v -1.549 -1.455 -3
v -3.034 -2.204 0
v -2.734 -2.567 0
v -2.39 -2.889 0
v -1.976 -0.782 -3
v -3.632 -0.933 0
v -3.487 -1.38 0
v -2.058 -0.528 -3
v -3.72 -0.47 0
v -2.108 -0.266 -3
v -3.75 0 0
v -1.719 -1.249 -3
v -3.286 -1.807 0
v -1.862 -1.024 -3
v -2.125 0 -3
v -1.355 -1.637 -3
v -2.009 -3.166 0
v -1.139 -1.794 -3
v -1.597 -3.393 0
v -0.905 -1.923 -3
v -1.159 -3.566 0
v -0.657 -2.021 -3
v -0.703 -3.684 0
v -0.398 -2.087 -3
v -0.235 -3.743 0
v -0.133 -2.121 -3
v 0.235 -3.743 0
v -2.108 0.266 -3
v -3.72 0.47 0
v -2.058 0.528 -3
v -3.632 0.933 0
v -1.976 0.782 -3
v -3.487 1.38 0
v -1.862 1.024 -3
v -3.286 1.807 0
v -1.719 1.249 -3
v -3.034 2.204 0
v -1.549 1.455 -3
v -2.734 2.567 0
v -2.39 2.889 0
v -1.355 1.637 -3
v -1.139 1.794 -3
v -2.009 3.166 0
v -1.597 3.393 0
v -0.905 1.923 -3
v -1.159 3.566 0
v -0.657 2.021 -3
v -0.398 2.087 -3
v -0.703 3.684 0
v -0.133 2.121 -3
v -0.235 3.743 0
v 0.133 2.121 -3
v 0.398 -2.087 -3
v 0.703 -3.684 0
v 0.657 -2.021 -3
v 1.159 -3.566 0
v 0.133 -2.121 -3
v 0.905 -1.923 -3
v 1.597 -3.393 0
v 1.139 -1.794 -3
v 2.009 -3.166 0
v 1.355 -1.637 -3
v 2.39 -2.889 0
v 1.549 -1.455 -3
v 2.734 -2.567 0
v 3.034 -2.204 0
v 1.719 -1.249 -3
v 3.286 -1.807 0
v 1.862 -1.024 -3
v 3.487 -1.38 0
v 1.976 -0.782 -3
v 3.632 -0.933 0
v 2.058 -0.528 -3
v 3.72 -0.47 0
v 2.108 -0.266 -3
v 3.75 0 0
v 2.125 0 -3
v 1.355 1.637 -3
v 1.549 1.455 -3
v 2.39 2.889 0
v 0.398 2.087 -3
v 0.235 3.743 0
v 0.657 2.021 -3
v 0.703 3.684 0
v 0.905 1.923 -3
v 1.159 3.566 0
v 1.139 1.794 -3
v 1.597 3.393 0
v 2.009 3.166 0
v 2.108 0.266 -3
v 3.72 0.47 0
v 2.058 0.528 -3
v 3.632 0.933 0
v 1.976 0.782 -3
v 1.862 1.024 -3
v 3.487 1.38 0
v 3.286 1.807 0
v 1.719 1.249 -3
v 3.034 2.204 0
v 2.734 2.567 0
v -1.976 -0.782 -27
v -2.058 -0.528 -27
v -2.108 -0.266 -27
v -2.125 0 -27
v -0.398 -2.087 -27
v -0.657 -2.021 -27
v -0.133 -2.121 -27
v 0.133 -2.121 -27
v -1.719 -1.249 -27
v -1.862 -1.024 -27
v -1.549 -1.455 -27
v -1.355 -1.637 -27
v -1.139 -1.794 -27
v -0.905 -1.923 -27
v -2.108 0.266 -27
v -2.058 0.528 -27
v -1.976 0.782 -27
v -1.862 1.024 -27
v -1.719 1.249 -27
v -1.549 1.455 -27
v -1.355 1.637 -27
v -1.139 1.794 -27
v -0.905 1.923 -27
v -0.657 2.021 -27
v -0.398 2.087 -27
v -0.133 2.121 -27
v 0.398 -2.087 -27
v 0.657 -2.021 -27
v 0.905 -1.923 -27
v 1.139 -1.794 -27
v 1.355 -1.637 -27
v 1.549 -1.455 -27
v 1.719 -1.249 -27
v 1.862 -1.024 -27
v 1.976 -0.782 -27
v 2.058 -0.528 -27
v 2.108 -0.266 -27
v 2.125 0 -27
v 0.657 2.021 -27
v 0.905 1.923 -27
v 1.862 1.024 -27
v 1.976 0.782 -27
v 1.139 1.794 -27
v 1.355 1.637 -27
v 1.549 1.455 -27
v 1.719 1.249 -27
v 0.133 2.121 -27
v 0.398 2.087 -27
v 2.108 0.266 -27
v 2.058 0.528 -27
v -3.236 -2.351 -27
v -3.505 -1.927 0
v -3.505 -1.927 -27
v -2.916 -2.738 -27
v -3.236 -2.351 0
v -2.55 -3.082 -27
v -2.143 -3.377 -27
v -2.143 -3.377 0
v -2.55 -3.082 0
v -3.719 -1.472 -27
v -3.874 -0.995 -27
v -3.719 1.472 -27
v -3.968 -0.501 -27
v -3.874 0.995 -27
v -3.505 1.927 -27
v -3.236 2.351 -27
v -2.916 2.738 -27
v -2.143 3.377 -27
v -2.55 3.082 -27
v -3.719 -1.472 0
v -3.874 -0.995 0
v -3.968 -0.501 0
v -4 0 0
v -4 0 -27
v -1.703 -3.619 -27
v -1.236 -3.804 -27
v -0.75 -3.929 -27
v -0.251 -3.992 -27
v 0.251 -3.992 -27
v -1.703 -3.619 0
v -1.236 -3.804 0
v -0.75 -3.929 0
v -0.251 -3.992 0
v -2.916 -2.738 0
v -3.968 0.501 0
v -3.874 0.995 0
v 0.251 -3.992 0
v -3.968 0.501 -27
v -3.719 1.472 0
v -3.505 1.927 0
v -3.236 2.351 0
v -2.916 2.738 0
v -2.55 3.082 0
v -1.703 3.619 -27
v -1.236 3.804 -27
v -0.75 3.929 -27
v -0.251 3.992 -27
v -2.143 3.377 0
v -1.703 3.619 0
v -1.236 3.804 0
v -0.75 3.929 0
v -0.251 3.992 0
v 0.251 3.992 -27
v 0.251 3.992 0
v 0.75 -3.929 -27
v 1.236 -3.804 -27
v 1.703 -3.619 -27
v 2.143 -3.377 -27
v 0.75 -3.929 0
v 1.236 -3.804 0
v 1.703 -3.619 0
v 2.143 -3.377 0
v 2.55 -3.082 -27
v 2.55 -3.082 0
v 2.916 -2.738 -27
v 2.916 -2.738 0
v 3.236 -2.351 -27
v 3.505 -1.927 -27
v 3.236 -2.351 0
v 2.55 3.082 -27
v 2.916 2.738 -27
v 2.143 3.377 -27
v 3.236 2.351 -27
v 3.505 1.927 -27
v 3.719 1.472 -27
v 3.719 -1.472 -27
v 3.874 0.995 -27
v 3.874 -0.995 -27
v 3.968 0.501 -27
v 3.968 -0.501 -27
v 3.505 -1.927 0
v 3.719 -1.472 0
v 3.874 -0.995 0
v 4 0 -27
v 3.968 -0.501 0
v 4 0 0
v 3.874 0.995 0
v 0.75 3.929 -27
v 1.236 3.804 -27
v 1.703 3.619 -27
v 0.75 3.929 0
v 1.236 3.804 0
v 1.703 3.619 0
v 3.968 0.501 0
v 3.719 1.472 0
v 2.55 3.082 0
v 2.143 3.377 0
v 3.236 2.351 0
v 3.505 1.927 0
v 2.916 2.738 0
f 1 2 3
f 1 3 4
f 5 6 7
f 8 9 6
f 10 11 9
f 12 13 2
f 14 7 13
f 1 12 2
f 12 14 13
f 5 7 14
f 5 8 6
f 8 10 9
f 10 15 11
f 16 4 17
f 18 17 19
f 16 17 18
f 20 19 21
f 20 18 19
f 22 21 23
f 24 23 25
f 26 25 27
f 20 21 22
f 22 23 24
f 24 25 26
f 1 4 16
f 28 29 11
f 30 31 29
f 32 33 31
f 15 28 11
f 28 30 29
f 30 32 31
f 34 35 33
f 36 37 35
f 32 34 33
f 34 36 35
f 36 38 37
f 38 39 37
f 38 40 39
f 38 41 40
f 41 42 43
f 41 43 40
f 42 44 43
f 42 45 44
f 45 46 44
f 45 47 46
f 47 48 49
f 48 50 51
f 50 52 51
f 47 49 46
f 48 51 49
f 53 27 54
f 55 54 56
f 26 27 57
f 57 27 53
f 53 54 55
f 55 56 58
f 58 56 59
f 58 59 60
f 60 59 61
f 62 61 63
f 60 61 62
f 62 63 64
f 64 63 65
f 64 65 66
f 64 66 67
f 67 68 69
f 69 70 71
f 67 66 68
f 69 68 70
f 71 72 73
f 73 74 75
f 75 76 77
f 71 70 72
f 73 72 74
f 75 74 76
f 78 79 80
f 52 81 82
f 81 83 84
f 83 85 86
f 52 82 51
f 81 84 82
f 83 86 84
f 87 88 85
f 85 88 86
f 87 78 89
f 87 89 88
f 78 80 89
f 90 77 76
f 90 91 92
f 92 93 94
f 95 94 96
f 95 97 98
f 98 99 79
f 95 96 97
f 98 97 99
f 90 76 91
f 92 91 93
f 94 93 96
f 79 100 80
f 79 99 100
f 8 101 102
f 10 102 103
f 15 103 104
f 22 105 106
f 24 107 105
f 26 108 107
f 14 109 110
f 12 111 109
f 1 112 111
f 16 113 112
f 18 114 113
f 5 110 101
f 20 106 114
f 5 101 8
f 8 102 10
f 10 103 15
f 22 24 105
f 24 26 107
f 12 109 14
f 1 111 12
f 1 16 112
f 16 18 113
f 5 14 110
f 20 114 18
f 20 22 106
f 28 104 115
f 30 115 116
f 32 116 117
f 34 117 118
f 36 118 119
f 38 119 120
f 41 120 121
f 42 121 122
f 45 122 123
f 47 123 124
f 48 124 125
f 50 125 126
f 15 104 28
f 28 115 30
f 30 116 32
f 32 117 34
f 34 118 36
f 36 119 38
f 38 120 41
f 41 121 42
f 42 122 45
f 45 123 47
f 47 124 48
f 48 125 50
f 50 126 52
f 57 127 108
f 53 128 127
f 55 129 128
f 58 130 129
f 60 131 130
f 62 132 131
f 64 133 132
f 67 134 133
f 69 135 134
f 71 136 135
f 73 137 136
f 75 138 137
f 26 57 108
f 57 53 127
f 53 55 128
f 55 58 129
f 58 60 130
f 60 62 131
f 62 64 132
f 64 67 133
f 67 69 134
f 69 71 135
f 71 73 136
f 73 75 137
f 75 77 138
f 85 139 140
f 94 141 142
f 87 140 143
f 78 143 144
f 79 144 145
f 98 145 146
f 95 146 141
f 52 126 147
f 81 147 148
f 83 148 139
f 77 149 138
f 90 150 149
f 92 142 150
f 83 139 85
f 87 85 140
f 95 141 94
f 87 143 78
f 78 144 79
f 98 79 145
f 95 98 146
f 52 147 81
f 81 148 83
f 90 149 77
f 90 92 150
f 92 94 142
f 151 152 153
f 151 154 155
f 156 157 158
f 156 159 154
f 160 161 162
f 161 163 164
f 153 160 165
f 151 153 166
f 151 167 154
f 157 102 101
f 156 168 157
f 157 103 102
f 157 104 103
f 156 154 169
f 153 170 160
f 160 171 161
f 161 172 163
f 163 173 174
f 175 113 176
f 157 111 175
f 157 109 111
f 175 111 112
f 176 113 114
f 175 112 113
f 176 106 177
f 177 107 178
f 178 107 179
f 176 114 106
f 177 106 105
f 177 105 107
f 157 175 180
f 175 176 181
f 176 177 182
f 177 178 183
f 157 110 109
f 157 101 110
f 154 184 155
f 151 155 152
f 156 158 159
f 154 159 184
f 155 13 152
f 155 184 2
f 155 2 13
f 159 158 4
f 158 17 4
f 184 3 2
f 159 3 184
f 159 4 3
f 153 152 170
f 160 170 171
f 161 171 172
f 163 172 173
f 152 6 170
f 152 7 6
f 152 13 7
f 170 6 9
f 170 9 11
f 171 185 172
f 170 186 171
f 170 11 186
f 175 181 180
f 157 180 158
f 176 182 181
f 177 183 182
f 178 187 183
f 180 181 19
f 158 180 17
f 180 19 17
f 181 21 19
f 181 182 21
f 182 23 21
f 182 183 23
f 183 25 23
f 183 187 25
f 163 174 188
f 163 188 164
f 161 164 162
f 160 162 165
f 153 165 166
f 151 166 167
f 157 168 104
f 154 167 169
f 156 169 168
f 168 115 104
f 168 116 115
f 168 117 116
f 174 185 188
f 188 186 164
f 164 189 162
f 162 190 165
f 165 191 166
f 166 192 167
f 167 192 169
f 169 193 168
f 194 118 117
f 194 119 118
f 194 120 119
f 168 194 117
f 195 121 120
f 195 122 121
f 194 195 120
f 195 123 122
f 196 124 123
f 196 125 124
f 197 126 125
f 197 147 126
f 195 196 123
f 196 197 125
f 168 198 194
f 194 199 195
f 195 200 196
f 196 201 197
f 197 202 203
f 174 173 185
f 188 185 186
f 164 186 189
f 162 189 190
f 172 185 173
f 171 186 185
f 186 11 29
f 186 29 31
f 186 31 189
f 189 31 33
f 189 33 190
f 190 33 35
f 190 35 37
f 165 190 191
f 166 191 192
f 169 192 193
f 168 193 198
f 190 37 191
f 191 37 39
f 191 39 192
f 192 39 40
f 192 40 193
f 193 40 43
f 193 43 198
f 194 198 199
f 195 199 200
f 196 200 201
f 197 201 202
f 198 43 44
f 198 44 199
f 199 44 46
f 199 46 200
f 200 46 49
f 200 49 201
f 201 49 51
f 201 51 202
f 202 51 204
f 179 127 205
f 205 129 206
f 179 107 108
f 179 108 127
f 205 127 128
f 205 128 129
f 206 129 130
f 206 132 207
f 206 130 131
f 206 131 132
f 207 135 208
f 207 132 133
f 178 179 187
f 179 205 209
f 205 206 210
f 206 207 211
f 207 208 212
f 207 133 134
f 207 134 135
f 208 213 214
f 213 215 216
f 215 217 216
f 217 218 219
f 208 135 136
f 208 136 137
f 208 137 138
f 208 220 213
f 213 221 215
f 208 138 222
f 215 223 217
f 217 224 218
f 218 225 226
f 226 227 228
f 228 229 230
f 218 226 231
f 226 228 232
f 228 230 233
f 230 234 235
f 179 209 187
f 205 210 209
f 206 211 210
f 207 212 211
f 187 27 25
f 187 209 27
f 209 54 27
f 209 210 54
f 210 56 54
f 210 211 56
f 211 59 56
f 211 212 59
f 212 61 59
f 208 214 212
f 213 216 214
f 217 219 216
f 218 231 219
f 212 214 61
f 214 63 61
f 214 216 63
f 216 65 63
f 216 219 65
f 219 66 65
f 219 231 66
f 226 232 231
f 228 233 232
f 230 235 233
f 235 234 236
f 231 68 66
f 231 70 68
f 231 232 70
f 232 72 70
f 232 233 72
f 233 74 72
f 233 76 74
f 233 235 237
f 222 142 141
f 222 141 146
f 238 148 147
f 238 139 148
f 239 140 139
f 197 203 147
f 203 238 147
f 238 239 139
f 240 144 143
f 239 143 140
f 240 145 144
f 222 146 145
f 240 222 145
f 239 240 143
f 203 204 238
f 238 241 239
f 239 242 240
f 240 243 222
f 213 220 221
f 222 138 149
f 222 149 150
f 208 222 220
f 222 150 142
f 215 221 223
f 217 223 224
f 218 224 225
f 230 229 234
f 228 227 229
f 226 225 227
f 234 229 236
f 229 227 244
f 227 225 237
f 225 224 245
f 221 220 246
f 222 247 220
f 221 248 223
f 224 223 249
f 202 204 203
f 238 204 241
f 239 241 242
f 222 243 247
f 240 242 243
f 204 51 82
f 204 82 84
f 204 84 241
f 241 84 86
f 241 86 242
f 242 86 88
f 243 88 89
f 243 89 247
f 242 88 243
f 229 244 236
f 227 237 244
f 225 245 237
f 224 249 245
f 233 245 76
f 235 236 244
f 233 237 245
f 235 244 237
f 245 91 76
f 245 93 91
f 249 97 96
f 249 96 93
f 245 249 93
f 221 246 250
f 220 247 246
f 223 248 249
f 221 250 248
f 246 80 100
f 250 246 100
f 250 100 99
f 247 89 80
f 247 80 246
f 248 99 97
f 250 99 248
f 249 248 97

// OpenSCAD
$fn = 50;

difference() {
	union() {
		translate(v = [0, 0, -27.0]) {
			cylinder(h = 27, r = 4.0);
		}
	}
	union() {
		translate(v = [0, 0, 0]) {
			rotate(a = [0, 0, 0]) {
				difference() {
					union() {
						translate(v = [0, 0, -30.0]) {
							cylinder(h = 30, r = 2.0);
						}
						translate(v = [0, 0, -3]) {
							cylinder(h = 3, r1 = 2.125, r2 = 3.75);
						}
						translate(v = [0, 0, -30.0]) {
							cylinder(h = 30, r = 2.125);
						}
						translate(v = [0, 0, -30.0]) {
							cylinder(h = 30, r = 2.0);
						}
					}
					union();
				}
			}
		}
	}
}
